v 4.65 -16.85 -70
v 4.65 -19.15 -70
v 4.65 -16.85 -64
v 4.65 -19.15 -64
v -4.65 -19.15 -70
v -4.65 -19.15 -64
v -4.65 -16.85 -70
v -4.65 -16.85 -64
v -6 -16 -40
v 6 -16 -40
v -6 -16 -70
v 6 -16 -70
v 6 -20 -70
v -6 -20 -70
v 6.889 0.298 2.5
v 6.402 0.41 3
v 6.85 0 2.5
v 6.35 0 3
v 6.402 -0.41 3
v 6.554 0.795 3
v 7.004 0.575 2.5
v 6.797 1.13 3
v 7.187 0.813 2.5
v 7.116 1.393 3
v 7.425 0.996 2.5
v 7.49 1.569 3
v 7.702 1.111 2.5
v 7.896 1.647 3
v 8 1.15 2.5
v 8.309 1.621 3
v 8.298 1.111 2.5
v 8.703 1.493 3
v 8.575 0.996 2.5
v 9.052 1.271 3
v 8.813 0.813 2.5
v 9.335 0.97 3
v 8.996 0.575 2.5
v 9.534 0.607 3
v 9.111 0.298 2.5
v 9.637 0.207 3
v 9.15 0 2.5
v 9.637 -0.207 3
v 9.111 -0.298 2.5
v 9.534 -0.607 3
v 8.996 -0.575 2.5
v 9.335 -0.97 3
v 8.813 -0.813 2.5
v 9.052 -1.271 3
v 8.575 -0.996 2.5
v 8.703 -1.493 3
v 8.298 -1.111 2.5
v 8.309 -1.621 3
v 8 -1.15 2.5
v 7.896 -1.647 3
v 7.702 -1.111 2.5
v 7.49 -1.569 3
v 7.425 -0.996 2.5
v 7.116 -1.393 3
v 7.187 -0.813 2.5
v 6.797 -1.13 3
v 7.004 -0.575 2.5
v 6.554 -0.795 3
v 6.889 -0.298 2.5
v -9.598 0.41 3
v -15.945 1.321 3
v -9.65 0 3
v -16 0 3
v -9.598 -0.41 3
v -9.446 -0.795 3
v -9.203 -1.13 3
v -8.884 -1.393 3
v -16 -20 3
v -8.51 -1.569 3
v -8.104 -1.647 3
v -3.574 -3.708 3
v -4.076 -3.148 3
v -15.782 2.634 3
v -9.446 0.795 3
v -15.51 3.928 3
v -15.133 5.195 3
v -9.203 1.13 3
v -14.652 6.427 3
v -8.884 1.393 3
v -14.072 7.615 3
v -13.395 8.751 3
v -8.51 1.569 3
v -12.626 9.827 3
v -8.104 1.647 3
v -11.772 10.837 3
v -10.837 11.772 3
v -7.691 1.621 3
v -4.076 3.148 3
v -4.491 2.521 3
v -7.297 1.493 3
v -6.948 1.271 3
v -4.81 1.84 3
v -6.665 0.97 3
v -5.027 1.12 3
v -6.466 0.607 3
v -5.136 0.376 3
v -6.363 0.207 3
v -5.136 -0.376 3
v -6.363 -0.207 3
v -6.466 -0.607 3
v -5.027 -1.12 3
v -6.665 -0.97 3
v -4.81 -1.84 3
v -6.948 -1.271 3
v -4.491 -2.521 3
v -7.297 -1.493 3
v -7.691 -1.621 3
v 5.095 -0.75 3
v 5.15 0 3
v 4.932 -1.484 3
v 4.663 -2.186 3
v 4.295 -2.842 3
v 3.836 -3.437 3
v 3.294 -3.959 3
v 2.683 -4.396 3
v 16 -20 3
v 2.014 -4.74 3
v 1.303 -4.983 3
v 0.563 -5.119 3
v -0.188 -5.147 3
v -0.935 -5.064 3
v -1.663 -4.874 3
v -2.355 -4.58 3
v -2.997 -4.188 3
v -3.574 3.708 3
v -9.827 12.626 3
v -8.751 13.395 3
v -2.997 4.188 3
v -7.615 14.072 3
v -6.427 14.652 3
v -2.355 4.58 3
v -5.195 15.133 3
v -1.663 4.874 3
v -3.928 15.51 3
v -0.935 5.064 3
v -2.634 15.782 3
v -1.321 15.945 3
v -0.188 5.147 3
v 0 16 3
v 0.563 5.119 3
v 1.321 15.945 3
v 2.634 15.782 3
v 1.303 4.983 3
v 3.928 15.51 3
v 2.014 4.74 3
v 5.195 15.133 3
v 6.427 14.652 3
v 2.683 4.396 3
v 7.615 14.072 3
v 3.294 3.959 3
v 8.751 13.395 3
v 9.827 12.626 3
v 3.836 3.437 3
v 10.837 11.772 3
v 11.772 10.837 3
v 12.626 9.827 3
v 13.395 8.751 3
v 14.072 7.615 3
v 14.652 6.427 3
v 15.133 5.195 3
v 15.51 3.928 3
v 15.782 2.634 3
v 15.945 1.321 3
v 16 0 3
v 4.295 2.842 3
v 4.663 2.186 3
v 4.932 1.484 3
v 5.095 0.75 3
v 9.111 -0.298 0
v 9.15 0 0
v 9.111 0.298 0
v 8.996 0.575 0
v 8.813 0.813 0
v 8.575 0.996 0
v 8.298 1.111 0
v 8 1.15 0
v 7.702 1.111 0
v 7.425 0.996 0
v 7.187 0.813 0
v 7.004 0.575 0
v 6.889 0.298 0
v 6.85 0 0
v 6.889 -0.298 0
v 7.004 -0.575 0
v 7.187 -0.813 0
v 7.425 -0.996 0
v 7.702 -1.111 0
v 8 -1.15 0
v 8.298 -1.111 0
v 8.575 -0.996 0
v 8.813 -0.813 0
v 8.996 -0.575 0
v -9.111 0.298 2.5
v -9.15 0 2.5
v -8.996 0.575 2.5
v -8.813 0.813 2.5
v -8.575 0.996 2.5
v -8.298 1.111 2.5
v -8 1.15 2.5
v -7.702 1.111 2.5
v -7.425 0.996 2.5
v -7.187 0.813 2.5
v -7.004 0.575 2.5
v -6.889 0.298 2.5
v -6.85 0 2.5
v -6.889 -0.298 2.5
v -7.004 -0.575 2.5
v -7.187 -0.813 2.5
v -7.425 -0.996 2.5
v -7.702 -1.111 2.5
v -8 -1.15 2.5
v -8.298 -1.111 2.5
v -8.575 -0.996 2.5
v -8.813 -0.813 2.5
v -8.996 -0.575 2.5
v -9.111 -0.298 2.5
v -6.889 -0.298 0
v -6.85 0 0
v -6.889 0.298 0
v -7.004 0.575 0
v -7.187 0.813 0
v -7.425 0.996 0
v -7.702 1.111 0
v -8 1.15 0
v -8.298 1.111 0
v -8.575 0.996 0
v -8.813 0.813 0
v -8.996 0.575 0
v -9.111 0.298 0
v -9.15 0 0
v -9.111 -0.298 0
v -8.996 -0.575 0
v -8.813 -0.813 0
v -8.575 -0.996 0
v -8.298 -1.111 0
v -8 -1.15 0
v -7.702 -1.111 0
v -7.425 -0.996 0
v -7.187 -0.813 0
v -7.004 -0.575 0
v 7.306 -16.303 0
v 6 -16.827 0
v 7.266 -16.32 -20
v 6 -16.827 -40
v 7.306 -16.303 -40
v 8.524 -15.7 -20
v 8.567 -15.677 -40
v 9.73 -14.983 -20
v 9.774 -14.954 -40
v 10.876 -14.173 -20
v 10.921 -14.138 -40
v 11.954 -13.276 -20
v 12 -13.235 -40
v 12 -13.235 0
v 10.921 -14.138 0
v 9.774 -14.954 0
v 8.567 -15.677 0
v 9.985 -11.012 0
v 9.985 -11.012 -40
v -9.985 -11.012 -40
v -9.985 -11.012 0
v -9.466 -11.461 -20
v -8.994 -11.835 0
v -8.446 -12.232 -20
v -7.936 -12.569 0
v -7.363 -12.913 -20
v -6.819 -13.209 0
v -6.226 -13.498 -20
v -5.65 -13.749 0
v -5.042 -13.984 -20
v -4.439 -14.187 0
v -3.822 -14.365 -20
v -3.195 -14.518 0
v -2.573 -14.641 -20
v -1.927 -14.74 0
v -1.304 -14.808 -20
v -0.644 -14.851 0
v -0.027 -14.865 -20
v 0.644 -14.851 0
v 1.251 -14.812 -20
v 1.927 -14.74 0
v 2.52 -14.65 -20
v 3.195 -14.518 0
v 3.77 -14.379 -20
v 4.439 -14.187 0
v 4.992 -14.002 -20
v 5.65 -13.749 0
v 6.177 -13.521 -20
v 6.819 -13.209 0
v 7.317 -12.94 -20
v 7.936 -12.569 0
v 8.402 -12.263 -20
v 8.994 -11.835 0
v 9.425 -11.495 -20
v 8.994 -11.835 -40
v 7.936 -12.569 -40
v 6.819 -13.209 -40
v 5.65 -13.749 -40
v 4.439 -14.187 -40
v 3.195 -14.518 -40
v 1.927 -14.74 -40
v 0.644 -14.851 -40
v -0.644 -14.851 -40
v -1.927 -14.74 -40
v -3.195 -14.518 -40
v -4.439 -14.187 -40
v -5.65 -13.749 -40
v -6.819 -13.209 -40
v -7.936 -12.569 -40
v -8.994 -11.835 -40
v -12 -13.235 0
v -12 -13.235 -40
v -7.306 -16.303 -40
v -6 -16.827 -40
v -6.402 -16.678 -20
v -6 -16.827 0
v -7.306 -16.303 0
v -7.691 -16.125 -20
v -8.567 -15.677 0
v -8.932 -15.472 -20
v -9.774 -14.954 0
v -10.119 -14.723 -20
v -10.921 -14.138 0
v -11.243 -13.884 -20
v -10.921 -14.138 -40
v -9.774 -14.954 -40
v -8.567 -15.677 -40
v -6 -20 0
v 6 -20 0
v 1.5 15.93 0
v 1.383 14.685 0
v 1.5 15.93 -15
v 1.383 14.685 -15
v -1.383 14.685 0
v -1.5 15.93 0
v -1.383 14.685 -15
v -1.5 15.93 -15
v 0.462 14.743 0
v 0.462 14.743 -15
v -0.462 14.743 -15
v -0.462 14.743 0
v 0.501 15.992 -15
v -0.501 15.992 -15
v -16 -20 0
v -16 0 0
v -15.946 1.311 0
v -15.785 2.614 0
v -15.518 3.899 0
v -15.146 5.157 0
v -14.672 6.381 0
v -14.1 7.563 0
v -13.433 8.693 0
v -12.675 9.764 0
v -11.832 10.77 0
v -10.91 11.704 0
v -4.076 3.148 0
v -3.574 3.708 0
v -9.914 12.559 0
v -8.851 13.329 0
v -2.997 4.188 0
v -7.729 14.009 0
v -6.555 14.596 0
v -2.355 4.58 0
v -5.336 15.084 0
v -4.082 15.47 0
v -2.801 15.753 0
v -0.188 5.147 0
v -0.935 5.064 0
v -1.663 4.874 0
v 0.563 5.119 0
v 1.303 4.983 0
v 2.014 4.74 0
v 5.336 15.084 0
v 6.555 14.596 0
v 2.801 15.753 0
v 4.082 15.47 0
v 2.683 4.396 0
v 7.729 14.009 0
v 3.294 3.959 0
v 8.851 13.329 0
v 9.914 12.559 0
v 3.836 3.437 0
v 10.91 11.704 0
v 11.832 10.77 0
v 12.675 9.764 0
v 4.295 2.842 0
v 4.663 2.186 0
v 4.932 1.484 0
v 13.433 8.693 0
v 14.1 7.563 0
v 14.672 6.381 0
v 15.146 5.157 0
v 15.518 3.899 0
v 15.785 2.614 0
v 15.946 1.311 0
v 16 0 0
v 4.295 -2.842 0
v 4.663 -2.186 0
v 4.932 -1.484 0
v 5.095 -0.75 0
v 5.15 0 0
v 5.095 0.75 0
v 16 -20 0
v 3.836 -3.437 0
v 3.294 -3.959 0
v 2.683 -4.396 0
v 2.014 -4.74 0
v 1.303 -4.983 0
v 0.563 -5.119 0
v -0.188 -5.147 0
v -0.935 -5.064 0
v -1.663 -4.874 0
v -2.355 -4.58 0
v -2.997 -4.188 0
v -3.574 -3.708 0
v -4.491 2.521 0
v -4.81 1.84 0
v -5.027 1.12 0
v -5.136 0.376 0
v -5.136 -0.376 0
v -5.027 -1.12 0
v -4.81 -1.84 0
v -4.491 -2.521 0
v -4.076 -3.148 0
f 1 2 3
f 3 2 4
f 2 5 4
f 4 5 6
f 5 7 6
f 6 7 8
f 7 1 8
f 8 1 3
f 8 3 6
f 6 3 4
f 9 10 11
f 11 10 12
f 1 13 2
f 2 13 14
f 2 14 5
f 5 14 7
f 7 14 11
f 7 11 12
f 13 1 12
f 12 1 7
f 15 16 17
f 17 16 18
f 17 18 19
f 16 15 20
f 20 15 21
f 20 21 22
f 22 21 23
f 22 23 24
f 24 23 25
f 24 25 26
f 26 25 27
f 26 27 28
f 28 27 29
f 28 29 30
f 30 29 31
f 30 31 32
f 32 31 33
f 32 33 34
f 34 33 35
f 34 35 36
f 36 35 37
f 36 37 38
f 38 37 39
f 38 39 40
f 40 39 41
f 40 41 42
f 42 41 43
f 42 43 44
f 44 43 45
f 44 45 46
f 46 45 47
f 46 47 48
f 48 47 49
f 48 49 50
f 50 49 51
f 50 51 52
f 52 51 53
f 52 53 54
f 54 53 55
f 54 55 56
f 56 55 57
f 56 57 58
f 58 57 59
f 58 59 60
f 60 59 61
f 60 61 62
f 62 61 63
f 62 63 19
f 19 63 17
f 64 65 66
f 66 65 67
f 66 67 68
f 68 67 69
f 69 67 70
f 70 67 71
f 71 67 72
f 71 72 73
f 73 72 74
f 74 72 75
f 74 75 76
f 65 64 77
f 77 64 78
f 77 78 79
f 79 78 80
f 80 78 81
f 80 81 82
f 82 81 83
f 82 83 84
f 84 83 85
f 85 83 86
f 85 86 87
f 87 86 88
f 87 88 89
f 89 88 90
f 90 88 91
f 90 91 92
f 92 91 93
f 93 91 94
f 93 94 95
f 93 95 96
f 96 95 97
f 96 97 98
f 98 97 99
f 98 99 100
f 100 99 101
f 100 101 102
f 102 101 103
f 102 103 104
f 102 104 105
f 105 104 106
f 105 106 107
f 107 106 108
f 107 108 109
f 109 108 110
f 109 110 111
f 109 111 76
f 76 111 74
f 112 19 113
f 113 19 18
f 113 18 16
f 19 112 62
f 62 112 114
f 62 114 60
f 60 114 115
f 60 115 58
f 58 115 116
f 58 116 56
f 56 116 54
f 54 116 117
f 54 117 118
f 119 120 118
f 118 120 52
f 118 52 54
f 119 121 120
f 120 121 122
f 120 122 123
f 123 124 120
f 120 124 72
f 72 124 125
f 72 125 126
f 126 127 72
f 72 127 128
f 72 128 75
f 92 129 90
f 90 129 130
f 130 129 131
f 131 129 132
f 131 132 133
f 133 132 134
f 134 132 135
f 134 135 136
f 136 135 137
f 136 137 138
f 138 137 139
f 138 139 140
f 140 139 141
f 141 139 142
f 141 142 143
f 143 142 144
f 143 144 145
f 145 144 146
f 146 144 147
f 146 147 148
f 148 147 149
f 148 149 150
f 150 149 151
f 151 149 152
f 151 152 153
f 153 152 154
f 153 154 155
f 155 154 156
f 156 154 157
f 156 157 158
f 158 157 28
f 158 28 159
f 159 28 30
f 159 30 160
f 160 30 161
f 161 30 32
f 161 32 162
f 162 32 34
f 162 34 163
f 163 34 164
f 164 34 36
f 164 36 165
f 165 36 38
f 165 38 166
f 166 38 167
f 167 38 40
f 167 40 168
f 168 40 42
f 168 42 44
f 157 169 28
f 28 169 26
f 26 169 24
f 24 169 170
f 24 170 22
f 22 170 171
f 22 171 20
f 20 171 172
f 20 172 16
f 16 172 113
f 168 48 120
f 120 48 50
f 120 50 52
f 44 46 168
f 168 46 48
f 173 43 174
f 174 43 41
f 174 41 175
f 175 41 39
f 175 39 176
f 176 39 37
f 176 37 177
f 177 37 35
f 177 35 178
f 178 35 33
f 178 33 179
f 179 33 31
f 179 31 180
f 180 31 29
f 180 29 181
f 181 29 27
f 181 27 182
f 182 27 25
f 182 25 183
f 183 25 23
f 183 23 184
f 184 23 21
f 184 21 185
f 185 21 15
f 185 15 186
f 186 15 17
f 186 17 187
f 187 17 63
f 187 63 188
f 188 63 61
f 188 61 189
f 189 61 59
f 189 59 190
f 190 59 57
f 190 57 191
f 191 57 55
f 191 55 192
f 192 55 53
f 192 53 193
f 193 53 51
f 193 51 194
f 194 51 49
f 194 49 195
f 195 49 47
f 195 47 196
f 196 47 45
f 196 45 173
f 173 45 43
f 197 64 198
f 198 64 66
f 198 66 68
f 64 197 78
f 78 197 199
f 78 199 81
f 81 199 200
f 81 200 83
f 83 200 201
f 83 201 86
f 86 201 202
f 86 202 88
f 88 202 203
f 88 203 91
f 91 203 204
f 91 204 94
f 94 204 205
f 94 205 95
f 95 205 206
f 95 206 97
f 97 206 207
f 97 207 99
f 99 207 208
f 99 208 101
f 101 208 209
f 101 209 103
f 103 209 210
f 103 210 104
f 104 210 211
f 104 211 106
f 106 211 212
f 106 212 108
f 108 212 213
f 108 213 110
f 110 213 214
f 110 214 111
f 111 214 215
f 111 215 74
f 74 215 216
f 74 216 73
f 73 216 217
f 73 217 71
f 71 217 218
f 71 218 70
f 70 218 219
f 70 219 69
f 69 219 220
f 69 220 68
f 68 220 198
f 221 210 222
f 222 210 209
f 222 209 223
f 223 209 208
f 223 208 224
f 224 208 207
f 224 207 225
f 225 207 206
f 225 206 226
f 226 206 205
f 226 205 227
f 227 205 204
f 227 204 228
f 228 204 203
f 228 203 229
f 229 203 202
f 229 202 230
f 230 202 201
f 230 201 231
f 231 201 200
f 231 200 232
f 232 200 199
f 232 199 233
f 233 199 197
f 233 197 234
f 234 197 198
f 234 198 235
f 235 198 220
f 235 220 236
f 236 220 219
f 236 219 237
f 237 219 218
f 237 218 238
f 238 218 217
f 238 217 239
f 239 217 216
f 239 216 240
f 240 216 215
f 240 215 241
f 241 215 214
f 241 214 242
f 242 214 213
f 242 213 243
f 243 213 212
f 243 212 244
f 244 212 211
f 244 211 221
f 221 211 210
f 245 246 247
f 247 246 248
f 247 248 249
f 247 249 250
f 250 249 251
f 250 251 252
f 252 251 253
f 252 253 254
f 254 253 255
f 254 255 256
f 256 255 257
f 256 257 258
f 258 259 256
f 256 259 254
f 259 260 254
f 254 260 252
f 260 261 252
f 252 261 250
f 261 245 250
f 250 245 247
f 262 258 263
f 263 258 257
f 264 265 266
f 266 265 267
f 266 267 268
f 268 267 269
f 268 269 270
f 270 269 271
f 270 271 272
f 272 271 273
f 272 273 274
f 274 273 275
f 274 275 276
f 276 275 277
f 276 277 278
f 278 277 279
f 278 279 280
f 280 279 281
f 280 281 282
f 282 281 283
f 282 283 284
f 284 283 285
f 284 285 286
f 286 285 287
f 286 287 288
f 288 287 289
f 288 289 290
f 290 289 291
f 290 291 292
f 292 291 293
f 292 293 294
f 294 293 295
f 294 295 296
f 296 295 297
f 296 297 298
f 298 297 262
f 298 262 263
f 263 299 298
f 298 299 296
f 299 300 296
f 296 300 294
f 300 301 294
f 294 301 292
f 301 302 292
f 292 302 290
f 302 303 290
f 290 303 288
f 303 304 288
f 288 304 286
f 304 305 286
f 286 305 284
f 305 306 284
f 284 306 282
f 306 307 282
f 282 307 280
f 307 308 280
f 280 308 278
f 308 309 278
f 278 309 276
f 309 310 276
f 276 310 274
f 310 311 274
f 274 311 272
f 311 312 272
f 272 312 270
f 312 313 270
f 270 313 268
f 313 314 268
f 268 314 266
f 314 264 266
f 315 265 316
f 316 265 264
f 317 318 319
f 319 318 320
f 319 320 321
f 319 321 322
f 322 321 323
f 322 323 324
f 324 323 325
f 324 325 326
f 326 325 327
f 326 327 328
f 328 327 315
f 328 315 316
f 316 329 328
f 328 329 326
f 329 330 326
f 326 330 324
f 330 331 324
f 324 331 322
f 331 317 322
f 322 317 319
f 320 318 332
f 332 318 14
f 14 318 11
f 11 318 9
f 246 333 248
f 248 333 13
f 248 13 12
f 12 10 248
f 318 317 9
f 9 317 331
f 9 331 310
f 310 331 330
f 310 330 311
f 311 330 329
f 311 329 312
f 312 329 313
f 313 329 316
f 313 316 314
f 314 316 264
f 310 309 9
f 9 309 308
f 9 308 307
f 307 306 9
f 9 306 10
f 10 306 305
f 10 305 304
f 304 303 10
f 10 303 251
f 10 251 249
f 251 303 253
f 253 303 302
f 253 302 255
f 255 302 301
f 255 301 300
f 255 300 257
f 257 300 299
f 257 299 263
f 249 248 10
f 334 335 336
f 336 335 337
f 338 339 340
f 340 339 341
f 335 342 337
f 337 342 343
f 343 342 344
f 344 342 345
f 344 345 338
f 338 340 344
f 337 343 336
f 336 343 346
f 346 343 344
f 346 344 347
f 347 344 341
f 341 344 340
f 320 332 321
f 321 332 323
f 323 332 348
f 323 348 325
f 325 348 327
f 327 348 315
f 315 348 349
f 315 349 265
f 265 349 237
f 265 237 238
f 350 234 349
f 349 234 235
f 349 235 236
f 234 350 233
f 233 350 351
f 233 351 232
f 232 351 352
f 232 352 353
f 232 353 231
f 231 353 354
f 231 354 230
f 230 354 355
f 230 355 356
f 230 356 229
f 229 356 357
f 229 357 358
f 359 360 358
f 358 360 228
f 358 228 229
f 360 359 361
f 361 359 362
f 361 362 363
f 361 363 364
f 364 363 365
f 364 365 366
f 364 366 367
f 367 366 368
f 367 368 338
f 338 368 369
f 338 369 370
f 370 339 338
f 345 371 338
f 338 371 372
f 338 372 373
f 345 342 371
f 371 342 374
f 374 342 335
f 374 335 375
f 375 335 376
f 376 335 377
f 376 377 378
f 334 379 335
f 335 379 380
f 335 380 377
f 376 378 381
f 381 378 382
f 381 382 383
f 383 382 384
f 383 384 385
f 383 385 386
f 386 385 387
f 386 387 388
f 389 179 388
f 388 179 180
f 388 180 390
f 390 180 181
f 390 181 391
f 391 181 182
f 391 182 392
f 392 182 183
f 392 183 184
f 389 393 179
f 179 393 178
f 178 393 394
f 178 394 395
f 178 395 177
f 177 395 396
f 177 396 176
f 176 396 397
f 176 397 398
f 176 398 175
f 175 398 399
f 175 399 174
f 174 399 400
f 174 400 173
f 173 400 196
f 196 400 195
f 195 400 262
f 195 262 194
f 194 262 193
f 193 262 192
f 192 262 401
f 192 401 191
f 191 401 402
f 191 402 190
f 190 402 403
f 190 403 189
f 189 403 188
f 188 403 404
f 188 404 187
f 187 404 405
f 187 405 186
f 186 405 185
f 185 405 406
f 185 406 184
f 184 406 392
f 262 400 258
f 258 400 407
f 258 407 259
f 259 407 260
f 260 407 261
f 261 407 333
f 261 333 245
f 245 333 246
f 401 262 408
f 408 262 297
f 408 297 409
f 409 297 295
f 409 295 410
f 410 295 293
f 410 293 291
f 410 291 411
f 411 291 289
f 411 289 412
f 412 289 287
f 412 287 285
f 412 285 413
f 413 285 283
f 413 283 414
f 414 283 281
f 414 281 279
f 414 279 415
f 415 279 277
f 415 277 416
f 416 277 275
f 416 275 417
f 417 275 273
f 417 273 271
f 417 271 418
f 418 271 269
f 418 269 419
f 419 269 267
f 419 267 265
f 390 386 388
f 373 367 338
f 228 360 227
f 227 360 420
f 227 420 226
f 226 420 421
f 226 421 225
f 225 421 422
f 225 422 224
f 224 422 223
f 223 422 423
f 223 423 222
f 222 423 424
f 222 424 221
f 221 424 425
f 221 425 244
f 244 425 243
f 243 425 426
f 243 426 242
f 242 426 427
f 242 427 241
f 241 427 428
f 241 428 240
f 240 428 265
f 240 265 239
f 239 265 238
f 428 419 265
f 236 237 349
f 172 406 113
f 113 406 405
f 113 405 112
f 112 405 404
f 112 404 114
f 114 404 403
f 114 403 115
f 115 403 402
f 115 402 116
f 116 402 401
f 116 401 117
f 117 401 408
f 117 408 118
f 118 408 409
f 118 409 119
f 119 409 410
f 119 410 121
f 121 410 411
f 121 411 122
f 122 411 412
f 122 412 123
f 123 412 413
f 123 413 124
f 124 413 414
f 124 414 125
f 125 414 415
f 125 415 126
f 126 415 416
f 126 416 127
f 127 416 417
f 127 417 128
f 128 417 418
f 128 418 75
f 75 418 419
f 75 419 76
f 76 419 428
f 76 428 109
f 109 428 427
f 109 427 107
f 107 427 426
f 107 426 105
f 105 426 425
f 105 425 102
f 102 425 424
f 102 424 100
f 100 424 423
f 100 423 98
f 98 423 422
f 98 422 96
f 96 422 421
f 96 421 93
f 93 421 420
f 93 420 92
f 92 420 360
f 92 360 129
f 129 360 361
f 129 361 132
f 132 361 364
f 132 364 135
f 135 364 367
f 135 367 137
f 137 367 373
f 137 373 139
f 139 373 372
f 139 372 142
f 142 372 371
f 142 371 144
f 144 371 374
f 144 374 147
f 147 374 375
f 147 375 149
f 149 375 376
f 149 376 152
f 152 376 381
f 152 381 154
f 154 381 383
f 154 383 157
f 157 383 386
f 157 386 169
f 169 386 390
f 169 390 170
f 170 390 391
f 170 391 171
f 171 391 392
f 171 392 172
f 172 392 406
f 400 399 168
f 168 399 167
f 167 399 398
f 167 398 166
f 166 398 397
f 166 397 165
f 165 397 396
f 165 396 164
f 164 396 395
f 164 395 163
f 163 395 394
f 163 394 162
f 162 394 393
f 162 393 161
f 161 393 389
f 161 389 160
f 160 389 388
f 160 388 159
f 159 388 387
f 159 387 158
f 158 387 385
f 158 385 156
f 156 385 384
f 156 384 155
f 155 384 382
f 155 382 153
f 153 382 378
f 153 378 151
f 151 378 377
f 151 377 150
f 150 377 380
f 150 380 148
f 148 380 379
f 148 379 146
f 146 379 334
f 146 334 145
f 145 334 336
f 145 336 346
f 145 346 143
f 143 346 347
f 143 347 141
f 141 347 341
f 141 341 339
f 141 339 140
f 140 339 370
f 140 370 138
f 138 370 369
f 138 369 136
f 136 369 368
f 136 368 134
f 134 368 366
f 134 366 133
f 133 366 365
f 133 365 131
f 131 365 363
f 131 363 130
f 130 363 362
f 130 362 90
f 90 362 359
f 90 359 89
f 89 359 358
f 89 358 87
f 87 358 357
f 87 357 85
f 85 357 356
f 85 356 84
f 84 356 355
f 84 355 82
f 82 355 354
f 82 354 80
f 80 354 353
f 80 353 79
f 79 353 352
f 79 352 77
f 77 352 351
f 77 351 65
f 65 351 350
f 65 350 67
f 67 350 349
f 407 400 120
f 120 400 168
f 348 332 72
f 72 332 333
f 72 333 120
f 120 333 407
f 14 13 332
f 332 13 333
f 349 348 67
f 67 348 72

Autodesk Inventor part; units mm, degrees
ref_plane "YZ Plane" through (0, 0, 0) normal (1, 0, 0) x (0, 1, 0)
ref_plane "XZ Plane" through (0, 0, 0) normal (0, 1, 0) x (-1, 0, 0)
ref_plane "XY Plane" through (0, 0, 0) normal (0, 0, 1) x (1, 0, 0)
sketch "Sketch1" plane through (0, 0, 0) normal (0, 0, 1) x (1, 0, 0)
  circle A0 centre (0, 0) radius 5.15
  circle A1 centre (0, 0) radius 16
  line L0 (-16, 0) -> (-16, -20)
  line L1 (-16, -20) -> (16, -20)
  line L2 (16, -20) -> (16, 0)
  circle A2 centre (0, 0) radius 14.5
  point P0 (-8, 0)
  point P1 (8, 0)
  dimension "d0" = 10.3
  dimension "d1" = 32
  dimension "d3" = 20
  dimension "d4" = 8
  dimension "d5" = 8
  dimension "d28" = 1.5
extrude "Extrusion1" add sketch "Sketch1" along normal blind 3 contours A1 | L2 L1 L0 A1 | A2
hole "Hole1" at (-8, 0, 0) at (8, 0, 0) direction (0, 0, 1) diameter 2.3 end through all
sketch "Sketch2" plane through (0, 0, 0) normal (0, 0, -1) x (-1, 0, 0)
  arc A0 (1.3828, 14.685) -> (-1.3828, 14.685) centre (0, 0) ccw
  line L0 (-1.3828, 14.685) -> (-1.5, 15.9295)
  arc A1 (16, 0) -> (-16, 0) centre (0, 0) ccw projected
  line L1 (1.3828, 14.685) -> (1.5, 15.9295)
  point P0 (0, 14.75)
  dimension "d15" = 3
  dimension "d16" = 1.25
extrude "Extrusion2" add sketch "Sketch2" along normal blind 15
sketch "Sketch3" plane through (0, 0, 0) normal (0, 0, -1) x (-1, 0, 0)
  arc A0 (-1.9403, 14.7378) -> (1.9403, 14.7378) centre (0, 0) ccw projected
  arc A1 (-2.3319, 17.7122) -> (2.3319, 17.7122) centre (0, 0) ccw
  line L0 (-6, -16.8273) -> (-6, -20)
  line L1 (-6, -20) -> (6, -20)
  line L2 (16, -20) -> (-16, -20) construction
  line L3 (6, -16.8273) -> (6, -20)
  line L4 (-12, -13.2347) -> (-9.9849, -11.0123)
  line L5 (12, -13.2347) -> (9.9849, -11.0123)
  point P0 (0, 0)
  dimension "d19" = 3
  dimension "d20" = 12
  dimension "d21" = 24
  dimension "d22" = 12
extrude "Extrusion3" add sketch "Sketch3" along normal blind 40
chamfer "Chamfer1" distance 0.5 angle 45 2 edges at (-8, -1.15, 3) (8, -1.15, 3)
sketch "Sketch4" plane through (0, 0, -40) normal (0, 0, -1) x (-1, 0, 0)
  line L0 (-6, -20) -> (6, -20) projected
  line L1 (6, -20) -> (6, -16.8273) projected
  line L2 (6, -20) -> (6, -16)
  line L3 (6, -16) -> (-6, -16)
  line L4 (-6, -16.8273) -> (-6, -20) projected
  line L5 (-6, -16) -> (-6, -20)
  point P0 (0, 0)
  dimension "d29" = 4
extrude "Extrusion4" add sketch "Sketch4" along normal blind 30
sketch "Sketch6" plane through (0, 0, -70) normal (0, 0, -1) x (-1, 0, 0)
  line L0 (-4.65, -16.85) -> (4.65, -16.85)
  line L1 (4.65, -16.85) -> (4.65, -19.15)
  line L2 (4.65, -19.15) -> (-4.65, -19.15)
  line L3 (-4.65, -19.15) -> (-4.65, -16.85)
  line L4 (-6, -20) -> (6, -20) projected
  line L5 (6, -20) -> (6, -16) projected
  point P0 (0, 0)
  point P1 (0, -16.85)
  point P2 (0, -20)
  point P3 (4.65, -18)
  point P4 (6, -18)
  dimension "d36" = 2.3
  dimension "d37" = 9.3
extrude "Extrusion5" cut sketch "Sketch6" against normal blind 6
properties part number "Motor Face Mount"
